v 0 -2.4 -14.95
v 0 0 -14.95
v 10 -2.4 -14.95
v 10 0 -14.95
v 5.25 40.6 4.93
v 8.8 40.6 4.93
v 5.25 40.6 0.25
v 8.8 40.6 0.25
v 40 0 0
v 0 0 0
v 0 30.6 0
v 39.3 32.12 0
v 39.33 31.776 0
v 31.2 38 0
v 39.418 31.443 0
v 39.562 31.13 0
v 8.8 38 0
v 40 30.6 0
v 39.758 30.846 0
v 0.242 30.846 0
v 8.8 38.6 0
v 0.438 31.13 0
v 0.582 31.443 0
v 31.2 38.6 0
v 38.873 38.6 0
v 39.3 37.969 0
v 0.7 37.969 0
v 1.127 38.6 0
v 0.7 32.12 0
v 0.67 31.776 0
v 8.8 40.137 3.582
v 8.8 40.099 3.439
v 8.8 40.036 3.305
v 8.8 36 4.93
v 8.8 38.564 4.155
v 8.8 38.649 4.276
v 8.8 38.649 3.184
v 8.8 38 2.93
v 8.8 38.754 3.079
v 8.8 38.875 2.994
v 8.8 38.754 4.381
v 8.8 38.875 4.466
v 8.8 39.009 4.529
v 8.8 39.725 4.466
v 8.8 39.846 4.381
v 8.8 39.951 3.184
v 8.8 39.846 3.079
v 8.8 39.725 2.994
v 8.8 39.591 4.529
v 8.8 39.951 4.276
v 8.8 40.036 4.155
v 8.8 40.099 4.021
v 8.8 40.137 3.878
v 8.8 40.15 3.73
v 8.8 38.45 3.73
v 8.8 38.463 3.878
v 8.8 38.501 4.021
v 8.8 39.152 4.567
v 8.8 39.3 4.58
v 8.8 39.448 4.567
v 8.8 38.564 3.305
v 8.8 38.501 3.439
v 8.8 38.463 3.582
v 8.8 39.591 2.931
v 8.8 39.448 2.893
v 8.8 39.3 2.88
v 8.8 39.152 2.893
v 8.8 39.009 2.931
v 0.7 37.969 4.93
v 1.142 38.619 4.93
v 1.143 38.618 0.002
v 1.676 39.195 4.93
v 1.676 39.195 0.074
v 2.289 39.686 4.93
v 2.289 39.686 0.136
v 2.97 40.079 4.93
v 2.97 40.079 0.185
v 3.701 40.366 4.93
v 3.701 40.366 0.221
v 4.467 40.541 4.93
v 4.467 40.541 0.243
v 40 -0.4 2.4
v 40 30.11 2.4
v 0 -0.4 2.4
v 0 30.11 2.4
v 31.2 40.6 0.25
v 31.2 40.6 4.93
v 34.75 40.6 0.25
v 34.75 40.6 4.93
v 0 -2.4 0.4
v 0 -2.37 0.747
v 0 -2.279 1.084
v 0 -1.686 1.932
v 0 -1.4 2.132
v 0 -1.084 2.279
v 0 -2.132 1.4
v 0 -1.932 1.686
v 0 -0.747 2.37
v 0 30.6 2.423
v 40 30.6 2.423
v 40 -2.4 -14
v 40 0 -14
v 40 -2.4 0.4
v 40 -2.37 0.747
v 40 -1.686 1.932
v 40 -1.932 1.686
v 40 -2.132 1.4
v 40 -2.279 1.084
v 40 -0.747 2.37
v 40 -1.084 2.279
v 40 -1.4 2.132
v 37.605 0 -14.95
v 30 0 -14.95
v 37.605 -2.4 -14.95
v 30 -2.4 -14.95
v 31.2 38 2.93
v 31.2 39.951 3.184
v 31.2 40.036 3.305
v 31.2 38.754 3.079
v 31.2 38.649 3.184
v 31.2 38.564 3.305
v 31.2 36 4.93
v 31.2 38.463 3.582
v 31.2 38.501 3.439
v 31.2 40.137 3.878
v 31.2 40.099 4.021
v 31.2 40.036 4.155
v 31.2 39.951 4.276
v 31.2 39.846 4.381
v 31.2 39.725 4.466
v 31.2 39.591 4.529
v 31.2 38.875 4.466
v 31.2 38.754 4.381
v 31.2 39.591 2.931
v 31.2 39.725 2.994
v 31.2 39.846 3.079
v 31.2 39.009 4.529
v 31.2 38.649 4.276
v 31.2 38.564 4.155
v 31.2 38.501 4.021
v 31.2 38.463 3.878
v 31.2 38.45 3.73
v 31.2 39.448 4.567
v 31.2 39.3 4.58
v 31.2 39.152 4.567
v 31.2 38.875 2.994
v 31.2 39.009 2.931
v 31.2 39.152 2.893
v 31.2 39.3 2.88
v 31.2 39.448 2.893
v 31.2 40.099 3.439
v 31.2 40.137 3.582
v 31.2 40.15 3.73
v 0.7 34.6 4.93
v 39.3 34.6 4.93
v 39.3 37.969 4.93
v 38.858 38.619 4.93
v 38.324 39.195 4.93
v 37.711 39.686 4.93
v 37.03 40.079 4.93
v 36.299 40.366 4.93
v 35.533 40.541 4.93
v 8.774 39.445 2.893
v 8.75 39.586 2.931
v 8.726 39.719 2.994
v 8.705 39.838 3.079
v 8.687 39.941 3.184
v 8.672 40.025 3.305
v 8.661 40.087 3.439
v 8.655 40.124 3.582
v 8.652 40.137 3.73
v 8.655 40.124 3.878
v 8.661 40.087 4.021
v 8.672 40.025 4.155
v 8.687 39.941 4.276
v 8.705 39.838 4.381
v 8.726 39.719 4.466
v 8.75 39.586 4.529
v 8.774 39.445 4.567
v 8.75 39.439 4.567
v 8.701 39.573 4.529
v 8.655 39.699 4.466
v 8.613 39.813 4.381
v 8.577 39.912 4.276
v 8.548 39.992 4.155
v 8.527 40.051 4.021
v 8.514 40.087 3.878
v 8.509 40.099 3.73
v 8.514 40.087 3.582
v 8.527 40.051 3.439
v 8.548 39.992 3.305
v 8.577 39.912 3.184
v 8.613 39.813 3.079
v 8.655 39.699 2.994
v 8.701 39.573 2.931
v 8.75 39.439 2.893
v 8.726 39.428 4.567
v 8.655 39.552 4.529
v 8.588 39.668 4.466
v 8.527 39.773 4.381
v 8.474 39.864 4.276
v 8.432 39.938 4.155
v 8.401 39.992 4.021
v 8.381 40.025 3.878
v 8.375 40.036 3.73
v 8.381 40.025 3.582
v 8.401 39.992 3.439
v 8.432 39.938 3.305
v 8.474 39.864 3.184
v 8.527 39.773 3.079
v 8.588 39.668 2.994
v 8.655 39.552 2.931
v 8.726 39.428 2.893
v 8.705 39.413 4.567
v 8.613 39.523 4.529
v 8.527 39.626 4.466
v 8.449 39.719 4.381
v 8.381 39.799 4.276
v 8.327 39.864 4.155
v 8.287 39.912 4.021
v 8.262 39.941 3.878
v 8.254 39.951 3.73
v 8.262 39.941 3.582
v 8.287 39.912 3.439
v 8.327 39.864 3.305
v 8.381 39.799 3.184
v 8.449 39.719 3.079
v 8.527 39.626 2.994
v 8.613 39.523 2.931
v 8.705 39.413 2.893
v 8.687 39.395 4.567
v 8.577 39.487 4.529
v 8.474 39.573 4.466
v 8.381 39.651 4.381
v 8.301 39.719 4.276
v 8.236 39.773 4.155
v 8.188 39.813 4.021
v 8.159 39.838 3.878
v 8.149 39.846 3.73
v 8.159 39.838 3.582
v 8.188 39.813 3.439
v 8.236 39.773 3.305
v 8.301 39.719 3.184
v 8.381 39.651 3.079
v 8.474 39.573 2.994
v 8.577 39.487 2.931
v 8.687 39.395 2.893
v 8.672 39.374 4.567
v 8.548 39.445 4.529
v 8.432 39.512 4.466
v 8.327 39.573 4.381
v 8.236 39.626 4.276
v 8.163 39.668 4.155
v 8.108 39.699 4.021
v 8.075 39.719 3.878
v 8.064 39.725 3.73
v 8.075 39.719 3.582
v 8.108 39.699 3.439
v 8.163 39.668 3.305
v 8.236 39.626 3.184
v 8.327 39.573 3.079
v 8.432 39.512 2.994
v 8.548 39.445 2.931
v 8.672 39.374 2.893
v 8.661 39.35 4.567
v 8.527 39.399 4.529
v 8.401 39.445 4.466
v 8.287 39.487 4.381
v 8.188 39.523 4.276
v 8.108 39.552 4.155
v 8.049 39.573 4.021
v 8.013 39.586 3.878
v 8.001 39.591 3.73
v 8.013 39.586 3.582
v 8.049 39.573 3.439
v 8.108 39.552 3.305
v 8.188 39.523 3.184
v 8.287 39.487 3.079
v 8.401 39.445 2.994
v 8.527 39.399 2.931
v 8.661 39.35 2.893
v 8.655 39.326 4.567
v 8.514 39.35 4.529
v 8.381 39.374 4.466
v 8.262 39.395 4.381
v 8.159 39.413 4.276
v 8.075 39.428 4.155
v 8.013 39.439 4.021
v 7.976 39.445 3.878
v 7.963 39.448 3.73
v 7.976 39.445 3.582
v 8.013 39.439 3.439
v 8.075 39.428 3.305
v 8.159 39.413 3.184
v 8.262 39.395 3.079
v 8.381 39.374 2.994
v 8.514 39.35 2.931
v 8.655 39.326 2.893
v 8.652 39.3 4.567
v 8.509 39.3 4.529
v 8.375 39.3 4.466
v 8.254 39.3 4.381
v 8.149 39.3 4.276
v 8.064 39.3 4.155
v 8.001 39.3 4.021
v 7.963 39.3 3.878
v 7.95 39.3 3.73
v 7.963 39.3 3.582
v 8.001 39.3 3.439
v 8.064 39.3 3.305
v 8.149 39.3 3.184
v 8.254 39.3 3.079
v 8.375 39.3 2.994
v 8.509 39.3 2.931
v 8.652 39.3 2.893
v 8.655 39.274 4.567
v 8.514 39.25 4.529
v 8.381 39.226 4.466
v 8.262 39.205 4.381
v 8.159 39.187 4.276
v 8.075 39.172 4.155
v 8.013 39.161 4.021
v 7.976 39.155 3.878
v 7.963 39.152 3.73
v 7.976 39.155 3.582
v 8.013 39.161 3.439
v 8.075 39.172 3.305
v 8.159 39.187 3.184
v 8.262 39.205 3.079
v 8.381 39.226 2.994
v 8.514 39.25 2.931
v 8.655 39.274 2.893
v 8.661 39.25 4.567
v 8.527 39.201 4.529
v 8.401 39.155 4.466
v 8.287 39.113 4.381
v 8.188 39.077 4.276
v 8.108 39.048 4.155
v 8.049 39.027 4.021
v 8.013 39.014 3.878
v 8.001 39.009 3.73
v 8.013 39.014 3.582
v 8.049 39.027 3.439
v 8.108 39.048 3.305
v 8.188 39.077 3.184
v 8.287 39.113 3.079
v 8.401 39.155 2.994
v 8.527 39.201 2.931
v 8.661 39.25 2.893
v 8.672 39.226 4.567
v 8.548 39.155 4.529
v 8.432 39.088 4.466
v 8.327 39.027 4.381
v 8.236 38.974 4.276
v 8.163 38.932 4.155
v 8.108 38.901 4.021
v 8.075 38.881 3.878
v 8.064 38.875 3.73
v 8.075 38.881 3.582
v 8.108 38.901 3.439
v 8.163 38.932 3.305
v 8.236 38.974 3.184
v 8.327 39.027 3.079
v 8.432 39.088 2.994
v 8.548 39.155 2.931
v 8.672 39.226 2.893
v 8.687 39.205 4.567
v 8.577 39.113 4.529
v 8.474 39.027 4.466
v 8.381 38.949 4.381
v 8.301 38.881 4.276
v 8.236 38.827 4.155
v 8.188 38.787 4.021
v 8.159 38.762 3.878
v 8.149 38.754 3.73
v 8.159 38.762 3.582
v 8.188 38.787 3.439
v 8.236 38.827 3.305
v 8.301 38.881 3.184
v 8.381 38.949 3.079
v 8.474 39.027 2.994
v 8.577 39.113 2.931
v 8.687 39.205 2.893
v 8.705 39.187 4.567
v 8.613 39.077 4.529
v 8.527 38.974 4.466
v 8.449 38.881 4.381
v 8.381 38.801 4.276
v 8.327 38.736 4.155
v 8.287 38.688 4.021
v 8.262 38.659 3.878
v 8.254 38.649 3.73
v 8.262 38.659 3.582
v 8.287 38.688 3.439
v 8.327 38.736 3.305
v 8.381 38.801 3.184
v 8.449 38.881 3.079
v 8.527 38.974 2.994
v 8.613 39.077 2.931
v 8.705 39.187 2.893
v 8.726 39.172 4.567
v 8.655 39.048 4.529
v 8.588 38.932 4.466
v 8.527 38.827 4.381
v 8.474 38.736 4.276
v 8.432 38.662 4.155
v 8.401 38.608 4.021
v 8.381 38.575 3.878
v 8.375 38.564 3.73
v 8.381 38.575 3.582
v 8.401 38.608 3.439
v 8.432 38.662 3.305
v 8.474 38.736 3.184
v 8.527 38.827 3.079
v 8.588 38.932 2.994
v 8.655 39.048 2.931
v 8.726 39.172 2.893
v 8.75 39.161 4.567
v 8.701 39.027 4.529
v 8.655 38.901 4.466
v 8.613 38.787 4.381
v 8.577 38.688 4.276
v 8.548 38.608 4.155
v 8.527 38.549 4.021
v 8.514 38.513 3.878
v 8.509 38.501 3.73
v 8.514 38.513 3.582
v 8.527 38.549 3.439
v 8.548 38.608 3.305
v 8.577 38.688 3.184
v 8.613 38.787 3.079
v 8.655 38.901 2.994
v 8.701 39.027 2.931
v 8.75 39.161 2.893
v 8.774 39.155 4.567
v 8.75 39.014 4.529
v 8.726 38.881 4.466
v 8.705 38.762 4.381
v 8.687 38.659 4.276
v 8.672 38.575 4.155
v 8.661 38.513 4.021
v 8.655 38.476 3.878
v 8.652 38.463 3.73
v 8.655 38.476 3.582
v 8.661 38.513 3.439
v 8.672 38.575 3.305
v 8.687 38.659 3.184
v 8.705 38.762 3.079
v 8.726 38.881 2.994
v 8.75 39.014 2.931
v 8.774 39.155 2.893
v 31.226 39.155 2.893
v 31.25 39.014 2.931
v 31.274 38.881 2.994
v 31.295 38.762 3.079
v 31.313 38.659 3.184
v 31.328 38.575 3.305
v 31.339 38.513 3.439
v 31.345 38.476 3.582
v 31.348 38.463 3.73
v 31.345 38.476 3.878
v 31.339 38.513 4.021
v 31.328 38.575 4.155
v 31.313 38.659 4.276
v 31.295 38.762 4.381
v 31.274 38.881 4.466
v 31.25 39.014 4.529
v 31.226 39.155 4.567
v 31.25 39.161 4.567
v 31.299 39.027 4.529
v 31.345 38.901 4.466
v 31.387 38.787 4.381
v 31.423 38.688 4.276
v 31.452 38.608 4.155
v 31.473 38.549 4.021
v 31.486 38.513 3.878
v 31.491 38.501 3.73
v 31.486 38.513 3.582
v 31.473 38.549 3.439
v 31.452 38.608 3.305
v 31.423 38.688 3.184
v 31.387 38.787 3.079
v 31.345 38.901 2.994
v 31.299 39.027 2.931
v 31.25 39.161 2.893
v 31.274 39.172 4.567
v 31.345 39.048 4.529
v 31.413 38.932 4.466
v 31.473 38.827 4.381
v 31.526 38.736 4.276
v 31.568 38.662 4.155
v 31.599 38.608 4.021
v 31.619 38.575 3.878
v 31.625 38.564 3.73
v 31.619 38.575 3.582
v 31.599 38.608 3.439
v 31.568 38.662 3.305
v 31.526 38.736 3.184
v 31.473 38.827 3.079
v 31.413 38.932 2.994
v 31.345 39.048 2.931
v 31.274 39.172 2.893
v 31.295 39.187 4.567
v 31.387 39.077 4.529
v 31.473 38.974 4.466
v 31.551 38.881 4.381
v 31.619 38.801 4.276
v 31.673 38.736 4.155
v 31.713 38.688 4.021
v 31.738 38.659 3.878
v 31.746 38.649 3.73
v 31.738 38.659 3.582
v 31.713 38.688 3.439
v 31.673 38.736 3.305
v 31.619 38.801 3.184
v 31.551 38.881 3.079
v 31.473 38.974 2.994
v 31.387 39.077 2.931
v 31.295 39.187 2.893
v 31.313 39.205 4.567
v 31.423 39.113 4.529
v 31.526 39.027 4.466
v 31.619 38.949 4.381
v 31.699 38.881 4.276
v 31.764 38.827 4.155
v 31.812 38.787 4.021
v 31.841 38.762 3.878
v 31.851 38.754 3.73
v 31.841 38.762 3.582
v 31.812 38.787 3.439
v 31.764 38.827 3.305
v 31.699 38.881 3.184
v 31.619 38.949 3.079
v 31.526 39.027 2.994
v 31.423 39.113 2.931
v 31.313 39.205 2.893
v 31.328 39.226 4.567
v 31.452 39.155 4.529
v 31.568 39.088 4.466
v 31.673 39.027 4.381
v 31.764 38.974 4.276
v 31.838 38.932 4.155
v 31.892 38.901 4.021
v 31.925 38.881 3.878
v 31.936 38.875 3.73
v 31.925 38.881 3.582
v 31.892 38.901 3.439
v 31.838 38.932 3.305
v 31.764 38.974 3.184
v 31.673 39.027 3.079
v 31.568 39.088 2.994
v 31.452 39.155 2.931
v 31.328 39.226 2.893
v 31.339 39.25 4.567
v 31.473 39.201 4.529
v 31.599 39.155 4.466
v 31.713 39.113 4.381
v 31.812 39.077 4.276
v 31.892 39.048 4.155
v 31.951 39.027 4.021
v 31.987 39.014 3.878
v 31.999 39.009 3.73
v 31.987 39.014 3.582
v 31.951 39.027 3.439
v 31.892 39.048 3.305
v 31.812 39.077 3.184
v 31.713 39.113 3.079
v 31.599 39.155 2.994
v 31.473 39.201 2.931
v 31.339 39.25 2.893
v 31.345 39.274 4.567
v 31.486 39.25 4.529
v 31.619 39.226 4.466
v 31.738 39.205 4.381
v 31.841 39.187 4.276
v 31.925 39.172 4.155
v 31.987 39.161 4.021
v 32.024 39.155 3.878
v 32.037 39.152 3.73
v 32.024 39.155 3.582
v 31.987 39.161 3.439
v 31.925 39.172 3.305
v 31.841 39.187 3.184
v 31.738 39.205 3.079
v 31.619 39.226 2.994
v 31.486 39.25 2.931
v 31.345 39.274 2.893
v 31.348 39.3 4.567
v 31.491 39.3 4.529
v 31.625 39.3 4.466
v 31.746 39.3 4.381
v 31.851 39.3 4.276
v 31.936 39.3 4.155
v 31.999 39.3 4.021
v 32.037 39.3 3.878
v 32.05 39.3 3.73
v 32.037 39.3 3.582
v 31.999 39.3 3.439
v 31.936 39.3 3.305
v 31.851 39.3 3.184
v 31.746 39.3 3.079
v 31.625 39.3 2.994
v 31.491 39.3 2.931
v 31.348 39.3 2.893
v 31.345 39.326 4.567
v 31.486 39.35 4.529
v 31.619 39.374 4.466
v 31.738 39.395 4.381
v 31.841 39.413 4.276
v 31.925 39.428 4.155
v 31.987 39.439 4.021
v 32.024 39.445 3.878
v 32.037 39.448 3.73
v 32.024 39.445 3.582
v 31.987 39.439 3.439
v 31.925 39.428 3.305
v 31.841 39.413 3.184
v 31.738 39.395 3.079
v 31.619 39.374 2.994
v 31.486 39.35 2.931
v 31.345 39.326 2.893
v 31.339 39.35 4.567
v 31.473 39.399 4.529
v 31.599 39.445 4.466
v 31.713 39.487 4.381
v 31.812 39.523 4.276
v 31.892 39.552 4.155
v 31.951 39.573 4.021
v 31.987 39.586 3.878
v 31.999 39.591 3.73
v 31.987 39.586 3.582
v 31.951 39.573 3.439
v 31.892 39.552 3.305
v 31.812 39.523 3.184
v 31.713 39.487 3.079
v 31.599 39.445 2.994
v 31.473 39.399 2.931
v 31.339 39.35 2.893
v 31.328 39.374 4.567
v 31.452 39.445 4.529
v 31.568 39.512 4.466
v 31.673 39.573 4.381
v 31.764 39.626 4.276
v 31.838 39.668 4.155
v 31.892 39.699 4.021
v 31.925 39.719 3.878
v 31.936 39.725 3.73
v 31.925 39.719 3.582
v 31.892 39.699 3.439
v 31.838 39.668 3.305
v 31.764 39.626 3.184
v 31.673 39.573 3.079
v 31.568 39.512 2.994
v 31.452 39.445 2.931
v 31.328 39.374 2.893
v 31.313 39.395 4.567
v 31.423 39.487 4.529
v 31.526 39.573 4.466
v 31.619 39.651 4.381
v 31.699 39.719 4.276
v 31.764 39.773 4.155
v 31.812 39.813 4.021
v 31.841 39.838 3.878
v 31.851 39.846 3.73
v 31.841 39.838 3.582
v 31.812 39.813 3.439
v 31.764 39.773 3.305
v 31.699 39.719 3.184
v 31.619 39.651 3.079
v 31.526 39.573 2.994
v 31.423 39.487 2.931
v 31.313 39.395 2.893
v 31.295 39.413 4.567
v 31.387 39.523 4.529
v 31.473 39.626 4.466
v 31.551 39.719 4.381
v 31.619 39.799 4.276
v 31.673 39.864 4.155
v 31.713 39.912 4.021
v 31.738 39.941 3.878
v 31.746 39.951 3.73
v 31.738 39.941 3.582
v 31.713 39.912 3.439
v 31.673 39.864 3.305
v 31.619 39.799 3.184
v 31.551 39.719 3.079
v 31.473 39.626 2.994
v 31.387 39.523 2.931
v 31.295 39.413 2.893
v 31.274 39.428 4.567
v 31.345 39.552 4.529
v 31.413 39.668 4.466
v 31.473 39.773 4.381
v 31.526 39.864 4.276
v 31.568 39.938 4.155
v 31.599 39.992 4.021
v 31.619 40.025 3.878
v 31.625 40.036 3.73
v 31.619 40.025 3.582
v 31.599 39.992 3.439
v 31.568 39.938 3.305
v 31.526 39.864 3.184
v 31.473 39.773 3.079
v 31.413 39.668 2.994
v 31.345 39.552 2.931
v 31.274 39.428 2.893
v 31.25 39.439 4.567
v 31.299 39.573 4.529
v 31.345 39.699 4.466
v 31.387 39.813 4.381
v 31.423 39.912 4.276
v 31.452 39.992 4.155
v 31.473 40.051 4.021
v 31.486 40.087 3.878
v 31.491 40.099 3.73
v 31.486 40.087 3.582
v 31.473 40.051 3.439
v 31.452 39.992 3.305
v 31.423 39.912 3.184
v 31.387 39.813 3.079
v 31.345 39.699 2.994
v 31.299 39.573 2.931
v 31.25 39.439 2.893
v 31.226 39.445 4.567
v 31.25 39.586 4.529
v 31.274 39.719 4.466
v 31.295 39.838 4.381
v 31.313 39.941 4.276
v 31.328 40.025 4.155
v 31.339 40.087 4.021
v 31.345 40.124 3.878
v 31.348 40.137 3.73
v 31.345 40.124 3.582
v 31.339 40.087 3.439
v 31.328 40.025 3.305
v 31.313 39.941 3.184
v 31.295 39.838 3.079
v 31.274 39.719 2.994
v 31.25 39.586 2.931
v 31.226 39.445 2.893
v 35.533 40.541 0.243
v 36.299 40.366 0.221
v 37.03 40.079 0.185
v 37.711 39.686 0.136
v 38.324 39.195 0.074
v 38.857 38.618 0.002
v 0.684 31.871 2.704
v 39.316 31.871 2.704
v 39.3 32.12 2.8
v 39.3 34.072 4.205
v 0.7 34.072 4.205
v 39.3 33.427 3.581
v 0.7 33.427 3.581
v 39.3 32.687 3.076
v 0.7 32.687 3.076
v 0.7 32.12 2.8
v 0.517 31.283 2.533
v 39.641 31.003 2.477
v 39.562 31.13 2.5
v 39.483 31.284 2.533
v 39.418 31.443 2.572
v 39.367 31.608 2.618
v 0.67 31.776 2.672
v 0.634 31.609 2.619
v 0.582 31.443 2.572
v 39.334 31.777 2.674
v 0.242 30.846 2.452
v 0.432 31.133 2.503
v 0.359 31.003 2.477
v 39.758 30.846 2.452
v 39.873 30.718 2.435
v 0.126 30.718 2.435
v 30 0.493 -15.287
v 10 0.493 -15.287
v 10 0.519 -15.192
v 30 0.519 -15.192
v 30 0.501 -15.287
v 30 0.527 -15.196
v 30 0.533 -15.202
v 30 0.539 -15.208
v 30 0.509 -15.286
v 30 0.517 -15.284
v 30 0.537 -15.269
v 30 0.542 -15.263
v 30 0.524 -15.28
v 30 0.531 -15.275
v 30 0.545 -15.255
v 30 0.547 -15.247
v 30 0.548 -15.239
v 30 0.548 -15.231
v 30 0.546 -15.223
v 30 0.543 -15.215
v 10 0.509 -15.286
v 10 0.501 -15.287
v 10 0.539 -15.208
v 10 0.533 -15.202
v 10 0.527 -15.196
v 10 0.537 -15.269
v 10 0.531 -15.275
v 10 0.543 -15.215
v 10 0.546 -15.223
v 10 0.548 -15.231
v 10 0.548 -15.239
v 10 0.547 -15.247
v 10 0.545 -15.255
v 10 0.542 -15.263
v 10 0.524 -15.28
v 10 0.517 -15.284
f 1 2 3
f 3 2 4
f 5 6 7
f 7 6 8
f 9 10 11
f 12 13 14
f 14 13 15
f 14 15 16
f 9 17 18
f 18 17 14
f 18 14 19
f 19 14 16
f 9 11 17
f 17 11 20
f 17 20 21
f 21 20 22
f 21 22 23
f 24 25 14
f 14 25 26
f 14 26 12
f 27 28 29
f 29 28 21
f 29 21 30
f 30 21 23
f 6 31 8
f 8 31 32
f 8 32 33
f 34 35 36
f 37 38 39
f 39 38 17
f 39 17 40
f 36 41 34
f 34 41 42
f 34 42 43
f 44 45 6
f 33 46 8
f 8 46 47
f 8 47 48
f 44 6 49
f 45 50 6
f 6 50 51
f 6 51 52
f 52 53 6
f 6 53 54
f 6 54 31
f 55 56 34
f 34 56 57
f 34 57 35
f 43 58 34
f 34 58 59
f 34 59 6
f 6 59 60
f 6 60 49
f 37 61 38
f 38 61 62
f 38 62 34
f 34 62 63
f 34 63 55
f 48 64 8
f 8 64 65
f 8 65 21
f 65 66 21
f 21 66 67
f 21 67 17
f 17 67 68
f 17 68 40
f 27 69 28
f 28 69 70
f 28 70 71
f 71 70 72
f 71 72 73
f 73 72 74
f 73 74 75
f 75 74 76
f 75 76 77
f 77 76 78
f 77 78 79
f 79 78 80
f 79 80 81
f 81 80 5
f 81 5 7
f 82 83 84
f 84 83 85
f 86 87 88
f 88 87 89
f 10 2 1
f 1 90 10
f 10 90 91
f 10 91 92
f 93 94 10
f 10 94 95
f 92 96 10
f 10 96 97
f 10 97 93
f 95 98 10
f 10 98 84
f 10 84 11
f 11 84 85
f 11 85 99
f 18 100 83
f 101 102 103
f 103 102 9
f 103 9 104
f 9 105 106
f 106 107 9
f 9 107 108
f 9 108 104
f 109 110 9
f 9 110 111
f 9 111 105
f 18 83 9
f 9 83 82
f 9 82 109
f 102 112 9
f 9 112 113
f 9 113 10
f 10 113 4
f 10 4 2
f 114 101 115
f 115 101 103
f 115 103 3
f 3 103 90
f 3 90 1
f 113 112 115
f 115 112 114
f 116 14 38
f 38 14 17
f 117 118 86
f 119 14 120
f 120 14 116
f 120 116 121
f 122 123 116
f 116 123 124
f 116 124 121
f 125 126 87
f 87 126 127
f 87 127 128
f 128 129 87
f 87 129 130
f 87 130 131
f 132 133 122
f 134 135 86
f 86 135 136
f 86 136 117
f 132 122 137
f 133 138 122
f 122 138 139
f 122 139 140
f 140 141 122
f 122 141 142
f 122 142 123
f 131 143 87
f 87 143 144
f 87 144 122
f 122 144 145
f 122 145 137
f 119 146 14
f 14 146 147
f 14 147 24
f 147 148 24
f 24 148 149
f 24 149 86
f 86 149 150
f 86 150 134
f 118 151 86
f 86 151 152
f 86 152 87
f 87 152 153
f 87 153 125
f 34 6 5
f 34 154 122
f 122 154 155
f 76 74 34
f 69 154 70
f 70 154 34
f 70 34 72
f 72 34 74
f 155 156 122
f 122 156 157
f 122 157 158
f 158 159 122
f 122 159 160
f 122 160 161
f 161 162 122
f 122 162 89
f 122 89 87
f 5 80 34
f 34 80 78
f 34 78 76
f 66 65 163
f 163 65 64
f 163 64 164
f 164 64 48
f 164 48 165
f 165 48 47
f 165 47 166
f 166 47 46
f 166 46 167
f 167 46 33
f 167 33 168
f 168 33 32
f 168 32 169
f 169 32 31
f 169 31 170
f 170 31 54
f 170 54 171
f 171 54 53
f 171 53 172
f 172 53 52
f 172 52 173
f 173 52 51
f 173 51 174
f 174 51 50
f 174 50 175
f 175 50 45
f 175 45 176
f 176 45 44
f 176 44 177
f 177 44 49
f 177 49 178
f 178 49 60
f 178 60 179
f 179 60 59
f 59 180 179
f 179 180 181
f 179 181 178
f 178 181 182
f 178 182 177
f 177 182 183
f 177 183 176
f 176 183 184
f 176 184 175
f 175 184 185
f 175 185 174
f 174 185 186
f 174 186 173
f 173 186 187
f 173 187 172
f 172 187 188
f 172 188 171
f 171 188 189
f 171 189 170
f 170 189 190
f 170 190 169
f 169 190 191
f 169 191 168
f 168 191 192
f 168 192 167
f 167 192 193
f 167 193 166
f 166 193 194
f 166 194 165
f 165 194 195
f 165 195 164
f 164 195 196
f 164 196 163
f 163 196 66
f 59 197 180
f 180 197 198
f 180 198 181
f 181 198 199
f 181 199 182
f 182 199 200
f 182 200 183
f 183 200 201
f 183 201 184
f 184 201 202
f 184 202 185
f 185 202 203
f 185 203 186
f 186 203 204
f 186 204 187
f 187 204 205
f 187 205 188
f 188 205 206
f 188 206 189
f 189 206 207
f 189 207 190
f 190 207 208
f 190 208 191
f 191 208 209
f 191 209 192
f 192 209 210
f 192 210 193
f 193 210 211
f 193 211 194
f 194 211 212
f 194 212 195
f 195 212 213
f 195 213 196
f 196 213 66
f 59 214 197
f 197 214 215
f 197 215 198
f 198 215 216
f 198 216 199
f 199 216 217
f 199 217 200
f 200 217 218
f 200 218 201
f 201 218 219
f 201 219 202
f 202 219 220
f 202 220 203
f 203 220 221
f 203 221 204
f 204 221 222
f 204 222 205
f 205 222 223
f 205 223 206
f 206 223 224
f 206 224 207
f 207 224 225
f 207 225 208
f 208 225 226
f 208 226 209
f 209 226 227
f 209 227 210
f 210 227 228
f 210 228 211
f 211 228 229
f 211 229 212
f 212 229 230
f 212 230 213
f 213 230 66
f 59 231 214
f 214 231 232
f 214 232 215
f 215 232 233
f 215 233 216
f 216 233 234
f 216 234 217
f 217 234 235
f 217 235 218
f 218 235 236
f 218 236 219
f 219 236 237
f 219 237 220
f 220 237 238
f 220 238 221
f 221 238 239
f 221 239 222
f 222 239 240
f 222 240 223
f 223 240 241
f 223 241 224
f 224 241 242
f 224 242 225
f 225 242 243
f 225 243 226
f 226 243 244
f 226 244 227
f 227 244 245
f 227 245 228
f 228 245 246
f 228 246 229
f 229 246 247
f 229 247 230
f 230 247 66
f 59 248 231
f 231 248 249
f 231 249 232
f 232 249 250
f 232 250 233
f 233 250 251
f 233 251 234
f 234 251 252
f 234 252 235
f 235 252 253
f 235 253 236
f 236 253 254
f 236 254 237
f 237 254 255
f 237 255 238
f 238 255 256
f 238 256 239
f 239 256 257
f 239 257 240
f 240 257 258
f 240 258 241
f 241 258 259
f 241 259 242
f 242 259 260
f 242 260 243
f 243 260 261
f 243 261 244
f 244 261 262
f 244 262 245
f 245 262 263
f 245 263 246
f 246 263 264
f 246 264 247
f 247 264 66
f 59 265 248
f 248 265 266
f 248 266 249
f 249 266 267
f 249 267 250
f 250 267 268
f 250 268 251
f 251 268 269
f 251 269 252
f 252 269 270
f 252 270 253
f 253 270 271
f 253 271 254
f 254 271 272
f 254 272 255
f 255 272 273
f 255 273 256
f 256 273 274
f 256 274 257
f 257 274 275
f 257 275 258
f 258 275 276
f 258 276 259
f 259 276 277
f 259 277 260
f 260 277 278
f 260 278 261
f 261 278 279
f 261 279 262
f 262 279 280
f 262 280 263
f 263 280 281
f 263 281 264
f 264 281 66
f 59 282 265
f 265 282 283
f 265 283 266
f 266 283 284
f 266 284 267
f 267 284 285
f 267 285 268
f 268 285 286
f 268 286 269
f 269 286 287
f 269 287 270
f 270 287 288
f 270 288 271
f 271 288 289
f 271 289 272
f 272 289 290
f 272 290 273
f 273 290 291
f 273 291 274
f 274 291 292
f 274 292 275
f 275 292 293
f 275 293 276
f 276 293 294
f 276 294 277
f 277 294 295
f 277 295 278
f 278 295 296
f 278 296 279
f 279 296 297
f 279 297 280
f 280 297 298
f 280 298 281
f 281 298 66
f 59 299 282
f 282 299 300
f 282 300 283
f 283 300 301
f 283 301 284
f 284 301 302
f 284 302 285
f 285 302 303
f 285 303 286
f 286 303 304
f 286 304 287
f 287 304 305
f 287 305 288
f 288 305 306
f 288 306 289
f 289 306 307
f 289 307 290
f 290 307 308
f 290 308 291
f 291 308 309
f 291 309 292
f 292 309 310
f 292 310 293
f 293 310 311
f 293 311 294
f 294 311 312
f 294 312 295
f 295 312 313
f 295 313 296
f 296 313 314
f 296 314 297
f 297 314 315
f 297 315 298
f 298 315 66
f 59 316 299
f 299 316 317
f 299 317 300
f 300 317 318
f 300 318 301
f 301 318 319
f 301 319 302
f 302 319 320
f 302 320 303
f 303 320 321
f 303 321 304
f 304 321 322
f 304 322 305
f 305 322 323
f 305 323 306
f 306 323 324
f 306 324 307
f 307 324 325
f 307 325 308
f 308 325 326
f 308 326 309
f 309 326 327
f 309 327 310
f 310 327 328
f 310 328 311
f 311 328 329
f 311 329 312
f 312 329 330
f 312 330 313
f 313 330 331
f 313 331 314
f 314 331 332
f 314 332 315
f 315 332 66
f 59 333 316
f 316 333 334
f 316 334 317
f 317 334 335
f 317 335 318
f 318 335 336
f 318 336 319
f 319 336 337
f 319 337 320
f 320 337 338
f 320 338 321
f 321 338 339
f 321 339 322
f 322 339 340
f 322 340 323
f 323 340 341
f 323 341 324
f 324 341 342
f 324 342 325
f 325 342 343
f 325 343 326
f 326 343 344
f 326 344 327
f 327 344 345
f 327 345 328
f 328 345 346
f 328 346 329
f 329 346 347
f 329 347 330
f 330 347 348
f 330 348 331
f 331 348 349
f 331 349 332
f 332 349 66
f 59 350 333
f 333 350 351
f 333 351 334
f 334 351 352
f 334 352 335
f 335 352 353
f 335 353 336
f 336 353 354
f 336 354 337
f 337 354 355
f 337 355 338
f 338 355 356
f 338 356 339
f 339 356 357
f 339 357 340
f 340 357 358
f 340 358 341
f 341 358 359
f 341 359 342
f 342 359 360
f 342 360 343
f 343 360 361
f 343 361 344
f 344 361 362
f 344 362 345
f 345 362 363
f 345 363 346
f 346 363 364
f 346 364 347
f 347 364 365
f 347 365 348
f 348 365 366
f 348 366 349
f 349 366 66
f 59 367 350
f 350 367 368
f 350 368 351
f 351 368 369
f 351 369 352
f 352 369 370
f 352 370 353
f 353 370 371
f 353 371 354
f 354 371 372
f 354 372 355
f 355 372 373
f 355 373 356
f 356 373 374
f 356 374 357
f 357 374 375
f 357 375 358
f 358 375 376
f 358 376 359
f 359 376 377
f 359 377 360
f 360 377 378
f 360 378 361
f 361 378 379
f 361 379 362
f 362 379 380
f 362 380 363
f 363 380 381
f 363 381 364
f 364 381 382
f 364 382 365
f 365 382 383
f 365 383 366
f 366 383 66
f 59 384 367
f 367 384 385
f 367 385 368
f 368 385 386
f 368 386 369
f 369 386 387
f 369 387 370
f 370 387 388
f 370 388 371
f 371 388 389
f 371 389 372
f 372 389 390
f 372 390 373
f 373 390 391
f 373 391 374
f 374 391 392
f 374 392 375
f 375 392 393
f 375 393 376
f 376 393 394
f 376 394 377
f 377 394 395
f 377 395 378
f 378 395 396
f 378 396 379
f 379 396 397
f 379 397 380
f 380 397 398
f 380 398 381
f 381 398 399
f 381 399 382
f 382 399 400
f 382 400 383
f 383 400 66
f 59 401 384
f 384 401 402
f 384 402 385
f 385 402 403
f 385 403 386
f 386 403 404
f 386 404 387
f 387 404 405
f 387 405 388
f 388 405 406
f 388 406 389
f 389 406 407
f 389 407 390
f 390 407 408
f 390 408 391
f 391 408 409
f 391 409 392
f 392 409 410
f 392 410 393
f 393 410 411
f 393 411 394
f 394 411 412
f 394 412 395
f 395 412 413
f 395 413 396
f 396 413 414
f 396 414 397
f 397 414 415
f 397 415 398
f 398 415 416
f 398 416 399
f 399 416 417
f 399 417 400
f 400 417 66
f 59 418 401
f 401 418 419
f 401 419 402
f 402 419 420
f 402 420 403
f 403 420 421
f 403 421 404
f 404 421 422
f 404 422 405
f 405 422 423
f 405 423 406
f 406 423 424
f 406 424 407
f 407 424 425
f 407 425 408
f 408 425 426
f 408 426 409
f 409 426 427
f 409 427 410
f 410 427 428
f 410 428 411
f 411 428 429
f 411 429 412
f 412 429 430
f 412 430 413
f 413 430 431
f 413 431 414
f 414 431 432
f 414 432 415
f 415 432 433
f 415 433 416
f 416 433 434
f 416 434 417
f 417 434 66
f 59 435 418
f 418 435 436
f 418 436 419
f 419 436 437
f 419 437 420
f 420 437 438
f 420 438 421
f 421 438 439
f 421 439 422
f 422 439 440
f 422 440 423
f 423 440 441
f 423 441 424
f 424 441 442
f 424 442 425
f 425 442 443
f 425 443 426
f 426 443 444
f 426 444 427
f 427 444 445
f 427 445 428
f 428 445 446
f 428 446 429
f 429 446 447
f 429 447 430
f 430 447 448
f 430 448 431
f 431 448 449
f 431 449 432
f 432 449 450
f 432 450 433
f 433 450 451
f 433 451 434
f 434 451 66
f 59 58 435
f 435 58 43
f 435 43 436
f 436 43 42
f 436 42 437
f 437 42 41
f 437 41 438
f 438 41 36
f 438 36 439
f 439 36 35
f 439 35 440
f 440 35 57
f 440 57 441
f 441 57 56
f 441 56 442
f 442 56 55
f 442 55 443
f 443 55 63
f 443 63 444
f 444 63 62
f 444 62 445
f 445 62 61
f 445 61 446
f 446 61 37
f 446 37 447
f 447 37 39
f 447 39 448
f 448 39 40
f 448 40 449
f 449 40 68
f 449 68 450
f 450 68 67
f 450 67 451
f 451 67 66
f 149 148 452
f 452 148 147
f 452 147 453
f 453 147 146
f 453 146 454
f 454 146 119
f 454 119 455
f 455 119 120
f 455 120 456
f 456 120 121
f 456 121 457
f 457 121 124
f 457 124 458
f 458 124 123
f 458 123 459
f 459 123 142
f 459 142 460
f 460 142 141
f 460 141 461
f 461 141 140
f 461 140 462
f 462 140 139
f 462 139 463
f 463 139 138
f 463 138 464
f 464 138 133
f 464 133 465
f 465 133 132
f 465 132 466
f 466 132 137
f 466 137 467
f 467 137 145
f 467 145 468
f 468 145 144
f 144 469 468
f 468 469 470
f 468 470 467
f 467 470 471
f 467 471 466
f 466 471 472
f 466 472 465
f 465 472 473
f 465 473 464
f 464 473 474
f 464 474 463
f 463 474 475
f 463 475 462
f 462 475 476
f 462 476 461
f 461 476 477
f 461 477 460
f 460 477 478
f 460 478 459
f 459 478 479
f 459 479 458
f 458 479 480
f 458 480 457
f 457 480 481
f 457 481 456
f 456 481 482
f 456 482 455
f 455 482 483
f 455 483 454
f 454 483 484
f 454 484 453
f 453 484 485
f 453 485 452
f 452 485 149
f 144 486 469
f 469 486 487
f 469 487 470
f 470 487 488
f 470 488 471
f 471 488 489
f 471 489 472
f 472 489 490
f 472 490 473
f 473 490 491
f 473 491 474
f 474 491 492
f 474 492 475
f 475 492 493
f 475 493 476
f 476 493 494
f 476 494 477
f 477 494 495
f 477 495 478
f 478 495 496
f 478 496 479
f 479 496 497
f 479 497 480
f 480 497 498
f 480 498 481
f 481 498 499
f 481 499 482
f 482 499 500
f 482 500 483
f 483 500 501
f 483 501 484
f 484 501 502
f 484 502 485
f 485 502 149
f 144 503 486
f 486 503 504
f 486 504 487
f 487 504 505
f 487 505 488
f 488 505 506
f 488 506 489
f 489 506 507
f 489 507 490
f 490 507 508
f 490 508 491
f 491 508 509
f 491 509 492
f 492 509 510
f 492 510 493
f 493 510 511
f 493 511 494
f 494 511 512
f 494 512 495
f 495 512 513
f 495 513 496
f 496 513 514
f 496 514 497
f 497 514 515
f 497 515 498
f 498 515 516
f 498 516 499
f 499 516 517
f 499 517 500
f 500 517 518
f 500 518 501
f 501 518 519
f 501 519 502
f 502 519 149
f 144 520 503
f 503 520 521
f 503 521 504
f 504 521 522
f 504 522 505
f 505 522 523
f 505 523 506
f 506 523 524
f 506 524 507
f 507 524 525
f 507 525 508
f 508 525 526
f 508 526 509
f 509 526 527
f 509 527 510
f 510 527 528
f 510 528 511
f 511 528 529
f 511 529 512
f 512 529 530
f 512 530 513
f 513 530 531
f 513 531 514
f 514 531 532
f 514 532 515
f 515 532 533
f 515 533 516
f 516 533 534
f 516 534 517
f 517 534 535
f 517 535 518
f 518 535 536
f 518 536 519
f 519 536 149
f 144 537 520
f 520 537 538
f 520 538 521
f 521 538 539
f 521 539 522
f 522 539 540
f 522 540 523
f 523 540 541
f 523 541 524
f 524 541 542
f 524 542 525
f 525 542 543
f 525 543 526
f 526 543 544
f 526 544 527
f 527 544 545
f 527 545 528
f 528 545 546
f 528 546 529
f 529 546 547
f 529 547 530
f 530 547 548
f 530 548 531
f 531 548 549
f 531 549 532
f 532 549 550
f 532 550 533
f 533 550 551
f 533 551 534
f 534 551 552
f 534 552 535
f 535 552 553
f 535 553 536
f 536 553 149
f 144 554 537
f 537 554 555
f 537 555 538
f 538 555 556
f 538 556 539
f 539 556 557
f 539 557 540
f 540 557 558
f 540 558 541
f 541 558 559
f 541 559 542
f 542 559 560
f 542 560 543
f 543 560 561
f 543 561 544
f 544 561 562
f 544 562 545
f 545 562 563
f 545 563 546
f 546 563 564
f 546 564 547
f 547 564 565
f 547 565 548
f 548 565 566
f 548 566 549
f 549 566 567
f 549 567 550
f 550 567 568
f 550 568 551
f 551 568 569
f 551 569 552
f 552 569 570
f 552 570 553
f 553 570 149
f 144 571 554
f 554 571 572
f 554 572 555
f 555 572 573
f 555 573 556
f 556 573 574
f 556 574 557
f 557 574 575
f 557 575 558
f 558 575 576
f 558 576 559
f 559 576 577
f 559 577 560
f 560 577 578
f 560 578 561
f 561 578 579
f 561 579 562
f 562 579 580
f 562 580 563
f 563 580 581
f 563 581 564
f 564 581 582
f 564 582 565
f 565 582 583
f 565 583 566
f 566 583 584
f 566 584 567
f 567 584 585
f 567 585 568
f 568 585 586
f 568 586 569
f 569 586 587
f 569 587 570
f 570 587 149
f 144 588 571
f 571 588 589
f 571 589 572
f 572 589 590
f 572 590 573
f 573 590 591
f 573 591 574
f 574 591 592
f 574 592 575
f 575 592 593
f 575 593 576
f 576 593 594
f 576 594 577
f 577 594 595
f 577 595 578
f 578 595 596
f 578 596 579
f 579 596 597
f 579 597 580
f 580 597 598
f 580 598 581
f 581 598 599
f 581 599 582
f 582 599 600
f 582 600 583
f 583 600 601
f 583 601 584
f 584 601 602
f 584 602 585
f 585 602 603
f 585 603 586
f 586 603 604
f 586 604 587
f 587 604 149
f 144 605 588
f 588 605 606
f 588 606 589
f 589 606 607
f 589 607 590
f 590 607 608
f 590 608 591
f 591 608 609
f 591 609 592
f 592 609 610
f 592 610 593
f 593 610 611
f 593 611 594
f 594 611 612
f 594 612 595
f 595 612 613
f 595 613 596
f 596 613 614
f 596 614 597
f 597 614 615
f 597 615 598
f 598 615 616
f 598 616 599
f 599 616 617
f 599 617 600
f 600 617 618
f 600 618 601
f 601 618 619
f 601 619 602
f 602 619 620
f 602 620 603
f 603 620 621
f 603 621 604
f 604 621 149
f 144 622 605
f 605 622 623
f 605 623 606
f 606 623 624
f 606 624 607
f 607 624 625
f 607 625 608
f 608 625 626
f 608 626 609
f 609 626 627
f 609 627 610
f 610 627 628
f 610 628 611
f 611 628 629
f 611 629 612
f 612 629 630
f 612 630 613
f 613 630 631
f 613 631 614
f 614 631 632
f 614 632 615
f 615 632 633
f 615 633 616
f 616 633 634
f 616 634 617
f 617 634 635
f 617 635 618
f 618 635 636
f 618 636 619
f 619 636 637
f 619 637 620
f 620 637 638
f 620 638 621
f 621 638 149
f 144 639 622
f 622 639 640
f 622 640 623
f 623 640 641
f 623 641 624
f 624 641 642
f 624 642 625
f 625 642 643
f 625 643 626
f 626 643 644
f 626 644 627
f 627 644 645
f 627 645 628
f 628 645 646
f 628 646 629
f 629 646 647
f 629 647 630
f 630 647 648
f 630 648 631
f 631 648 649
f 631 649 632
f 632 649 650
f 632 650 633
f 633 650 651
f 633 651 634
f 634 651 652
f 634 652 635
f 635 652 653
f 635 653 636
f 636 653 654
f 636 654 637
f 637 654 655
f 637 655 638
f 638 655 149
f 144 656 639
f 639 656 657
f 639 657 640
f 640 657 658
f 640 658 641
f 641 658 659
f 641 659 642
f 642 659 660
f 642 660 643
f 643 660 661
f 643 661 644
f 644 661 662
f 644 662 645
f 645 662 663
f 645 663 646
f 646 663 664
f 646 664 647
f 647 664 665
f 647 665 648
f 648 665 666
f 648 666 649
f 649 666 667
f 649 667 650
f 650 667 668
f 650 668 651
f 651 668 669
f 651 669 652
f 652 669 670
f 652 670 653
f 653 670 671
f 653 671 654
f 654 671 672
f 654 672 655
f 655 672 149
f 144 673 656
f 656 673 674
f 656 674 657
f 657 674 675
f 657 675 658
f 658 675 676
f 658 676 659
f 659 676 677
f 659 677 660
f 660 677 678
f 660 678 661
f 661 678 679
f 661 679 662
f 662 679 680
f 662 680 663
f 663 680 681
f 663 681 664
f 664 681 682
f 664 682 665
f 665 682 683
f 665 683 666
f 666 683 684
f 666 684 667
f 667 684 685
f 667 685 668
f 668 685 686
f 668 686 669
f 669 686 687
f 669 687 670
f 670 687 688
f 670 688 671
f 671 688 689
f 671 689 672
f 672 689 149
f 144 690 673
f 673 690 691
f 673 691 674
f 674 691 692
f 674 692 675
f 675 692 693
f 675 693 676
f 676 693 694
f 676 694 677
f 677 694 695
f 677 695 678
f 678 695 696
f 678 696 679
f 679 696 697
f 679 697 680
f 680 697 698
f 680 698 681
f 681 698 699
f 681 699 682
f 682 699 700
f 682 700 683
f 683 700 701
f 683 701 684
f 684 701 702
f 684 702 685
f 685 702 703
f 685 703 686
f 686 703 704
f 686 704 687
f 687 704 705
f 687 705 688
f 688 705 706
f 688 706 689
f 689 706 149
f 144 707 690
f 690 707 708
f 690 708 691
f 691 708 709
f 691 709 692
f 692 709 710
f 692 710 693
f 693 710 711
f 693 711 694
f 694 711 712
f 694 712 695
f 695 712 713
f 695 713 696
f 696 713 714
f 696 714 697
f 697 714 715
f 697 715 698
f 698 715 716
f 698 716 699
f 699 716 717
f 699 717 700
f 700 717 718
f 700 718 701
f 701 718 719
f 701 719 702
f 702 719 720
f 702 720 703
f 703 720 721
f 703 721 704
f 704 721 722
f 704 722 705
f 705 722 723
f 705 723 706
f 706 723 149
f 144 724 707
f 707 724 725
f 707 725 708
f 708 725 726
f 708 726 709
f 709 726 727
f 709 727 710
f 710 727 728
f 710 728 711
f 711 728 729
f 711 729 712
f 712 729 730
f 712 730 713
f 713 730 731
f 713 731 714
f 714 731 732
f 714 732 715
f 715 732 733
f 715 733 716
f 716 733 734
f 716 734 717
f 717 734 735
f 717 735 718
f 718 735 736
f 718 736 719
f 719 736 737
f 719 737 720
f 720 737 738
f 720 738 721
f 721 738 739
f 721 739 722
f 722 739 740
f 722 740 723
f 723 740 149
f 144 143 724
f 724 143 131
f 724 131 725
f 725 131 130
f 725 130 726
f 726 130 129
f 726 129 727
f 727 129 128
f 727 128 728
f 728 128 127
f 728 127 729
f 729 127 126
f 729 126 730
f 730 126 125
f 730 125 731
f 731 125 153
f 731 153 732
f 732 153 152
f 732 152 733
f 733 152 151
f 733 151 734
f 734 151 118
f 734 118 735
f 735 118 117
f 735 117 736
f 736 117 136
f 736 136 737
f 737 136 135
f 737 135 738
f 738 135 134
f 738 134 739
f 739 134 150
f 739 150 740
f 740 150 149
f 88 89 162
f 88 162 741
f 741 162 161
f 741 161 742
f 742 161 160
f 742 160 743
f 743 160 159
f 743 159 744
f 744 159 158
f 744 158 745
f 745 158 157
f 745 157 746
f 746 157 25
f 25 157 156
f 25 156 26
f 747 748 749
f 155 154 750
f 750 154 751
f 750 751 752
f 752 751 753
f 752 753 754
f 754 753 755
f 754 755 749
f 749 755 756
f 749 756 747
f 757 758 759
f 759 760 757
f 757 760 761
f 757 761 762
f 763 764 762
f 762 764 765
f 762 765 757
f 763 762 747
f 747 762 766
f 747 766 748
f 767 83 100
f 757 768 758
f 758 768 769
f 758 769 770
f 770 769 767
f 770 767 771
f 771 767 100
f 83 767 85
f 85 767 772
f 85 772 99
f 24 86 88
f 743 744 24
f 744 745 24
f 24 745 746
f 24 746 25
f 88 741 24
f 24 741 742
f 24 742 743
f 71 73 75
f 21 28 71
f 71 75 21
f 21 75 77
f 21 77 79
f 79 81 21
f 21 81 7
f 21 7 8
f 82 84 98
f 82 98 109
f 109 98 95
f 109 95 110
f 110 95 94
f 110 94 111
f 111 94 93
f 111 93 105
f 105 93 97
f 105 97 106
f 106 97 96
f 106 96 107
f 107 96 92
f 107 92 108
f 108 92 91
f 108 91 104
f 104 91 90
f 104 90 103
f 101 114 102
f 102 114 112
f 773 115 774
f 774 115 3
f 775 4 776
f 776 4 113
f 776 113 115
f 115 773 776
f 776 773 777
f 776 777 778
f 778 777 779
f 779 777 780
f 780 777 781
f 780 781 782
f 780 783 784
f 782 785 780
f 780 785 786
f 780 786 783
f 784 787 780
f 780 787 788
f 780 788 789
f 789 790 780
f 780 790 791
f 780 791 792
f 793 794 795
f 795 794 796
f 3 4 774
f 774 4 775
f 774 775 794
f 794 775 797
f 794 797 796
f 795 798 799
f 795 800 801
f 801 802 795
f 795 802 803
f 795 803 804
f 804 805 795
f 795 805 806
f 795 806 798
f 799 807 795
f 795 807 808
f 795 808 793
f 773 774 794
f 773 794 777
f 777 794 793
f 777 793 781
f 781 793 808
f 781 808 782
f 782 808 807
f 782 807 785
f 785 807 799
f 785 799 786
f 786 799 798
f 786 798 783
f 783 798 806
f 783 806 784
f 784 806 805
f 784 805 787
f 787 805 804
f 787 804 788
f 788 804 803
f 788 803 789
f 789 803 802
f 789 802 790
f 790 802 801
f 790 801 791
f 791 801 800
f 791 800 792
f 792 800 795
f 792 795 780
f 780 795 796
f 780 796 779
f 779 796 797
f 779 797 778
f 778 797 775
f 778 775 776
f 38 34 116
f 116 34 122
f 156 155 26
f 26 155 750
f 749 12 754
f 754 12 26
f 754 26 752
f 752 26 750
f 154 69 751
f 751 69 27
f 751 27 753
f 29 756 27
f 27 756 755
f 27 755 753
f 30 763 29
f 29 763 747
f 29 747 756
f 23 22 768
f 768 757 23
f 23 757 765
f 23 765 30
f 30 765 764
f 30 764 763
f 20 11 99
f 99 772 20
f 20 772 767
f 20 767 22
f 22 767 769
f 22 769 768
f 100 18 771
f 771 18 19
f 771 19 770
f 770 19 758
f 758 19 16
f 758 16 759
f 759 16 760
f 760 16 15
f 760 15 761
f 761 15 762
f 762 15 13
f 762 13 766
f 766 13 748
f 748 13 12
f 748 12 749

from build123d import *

# Parameters (mm, degrees)
SKETCH1_W                = 40
SKETCH1_H                = 40.6
BOSS_EXTRUDE1_DEPTH      = 2.4
SKETCH2_W                = 40
SKETCH2_H                = 2.4
BOSS_EXTRUDE2_DEPTH      = 17.35
SKETCH3_W                = 22.4
SKETCH3_H                = 2.6
CUT_EXTRUDE1_DEPTH       = 2.4
BOSS_EXTRUDE3_DEPTH      = 2.53
FILLET1_R                = 5.25
FILLET2_R                = 5.25
CUT_EXTRUDE2_DEPTH       = 16.4
FILLET3_R                = 2
CUT_EXTRUDE3_DEPTH       = 59.922512676
BOSS_EXTRUDE4_DEPTH      = 10
BOSS_EXTRUDE4_DEPTH_BACK = 10
FILLET4_R                = 0.05
CHAMFER1_SIZE            = 2
SKETCH9_W                = 0.7
SKETCH9_H                = 10
CUT_EXTRUDE4_DEPTH       = 60.009057176
FILLET5_R                = 2


with BuildPart() as part:
    # Sketch1 → Boss-Extrude1 (new body)
    with BuildSketch(Plane.XY):
        with Locations((20, 20.3)):
            Rectangle(SKETCH1_W, SKETCH1_H)
    extrude(amount=BOSS_EXTRUDE1_DEPTH)

    # Sketch2 → Boss-Extrude2 (add)
    with BuildSketch(Plane.XY.offset(2.4)):
        with Locations((20, -1.2)):
            Rectangle(SKETCH2_W, SKETCH2_H)
    extrude(amount=-BOSS_EXTRUDE2_DEPTH)

    # Sketch3 → Cut-Extrude1 (cut)
    with BuildSketch(Plane.XY.offset(2.4)):
        with Locations((20, 39.3)):
            Rectangle(SKETCH3_W, SKETCH3_H)
    extrude(amount=-CUT_EXTRUDE1_DEPTH, mode=Mode.SUBTRACT)

    # Sketch5 → Boss-Extrude3 (add)
    with BuildSketch(Plane.XY.offset(2.4)):
        Polygon((0, 40.6), (0, 34.6), (40, 34.6), (40, 40.6), (31.2, 40.6), (31.2, 38), (8.8, 38), (8.8, 40.6), align=None)
    extrude(amount=BOSS_EXTRUDE3_DEPTH)

    # Sketch4 → Cut-Revolve2 (revolve, cut)
    with BuildSketch(Plane(origin=(8.8, 0, 0), x_dir=(0, 0, -1), z_dir=(1, 0, 0))):
        with BuildLine():
            Line((-2.88, 39.3), (-4.58, 39.3))
            ThreePointArc((-4.58, 39.3), (-3.73, 38.45), (-2.88, 39.3))
        make_face()
    cut_revolve2 = revolve(axis=Axis((8.8, 39.3, 2.88), (0, 0, 1)), mode=Mode.SUBTRACT)

    # Mirror2: Cut-Revolve2 across plane
    add(cut_revolve2.mirror(Plane.ZY.offset(-20)), mode=Mode.SUBTRACT)

    # Fillet1
    fillet1_edges = [part.edges().sort_by_distance(p)[0] for p in [
        (0, 40.6, 2.465),
        (40, 40.6, 2.465),
    ]]
    fillet(fillet1_edges, radius=FILLET1_R)

    # Fillet2
    # the kernel refuses this fillet: 5.25 mm, written as the material it adds along each edge
    with BuildSketch(Plane(origin=(0, 34.6, 2.4), x_dir=(0, 0, 1), z_dir=(1, 0, 0))) as fillet2_piece_1:
        with BuildLine():
            CenterArc((5.25, 4.490445412), FILLET2_R, 180, 58.795429652)
            Line((0, 4.490445412), (-0.105, 4.490445412))
            Line((-0.105, 4.490445412), (-0.105, 0))
            Line((-0.105, 0), (0, -0.105))
            ThreePointArc((0, -0.105), (1.265, -0.105), (2.4756, -0.089808908))
            Line((2.4756, -0.089808908), (2.53, 0))
        make_face()
    extrude(amount=40)

    # Sketch6 → Cut-Extrude2 (cut)
    with BuildSketch(Plane.ZY.offset(-31.2)):
        Polygon((0, 40.6), (0, 38.6), (0.25, 40.6), align=None)
    cut_extrude2 = extrude(amount=-CUT_EXTRUDE2_DEPTH, mode=Mode.SUBTRACT)

    # Mirror3: Cut-Extrude2 across plane
    add(cut_extrude2.mirror(Plane.ZY.offset(-20)), mode=Mode.SUBTRACT)

    # Fillet3
    fillet3_edges = [part.edges().sort_by_distance(p)[0] for p in [
        (20, -2.4, 2.4),
    ]]
    fillet(fillet3_edges, radius=FILLET3_R)

    # Sketch7 → Cut-Extrude3 (cut, through all)
    with BuildSketch(Plane(origin=(0, 0, 0), x_dir=(1, 0, 0), z_dir=(0, 1, 0))):
        Polygon((37.6, 14.952), (40, 14), (40, 14.95), align=None)
    extrude(amount=-CUT_EXTRUDE3_DEPTH, mode=Mode.SUBTRACT)

    # Sketch8 → Boss-Extrude4 (add, two sides: drawn at the far end of the back side and taken through both)
    with BuildSketch(Plane.ZY.offset(-20).offset(-BOSS_EXTRUDE4_DEPTH_BACK)):
        Polygon((-14.95, 0), (-15.323046127, 0.8), (-14.95, -2.4), align=None)
    extrude(amount=BOSS_EXTRUDE4_DEPTH + BOSS_EXTRUDE4_DEPTH_BACK)

    # Fillet4
    fillet4_edges = [part.edges().sort_by_distance(p)[0] for p in [
        (20, 0.8, -15.323046127),
    ]]
    fillet(fillet4_edges, radius=FILLET4_R)

    # Chamfer1
    chamfer1_edges = [part.edges().sort_by_distance(p)[0] for p in [
        (20, 38, 4.93),
    ]]
    chamfer(chamfer1_edges, length=CHAMFER1_SIZE)

    # Sketch9 → Cut-Extrude4 (cut, through all)
    with BuildSketch(Plane(origin=(0, 0, 0), x_dir=(-1, 0, 0), z_dir=(0, 0, -1))):
        with Locations((-39.65, 35.6)):
            Rectangle(SKETCH9_W, SKETCH9_H)
        with Locations((-0.35, 35.6)):
            Rectangle(SKETCH9_W, SKETCH9_H)
    extrude(amount=-CUT_EXTRUDE4_DEPTH, mode=Mode.SUBTRACT)

    # Fillet5
    # the kernel refuses this fillet: 2 mm, written as the material it adds along each edge
    with BuildSketch(Plane(origin=(0.7, 30.6, 0), x_dir=(0, 1, 0), z_dir=(0, 0, 1))) as fillet5_piece_1_section:
        with BuildLine():
            CenterArc((1.519868415, 2), FILLET5_R, 220.541601874, 49.458398126)
            Line((0, 0.7), (-0.030397368, 0.674))
            ThreePointArc((-0.030397368, 0.674), (-0.04, 0.35), (-0.04, 0))
            Line((-0.04, 0), (0, -0.04))
            Line((0, -0.04), (1.519868415, -0.04))
            Line((1.519868415, -0.04), (1.519868415, 0))
        make_face()
    fillet5_piece_1 = extrude(amount=6.222629495, mode=Mode.PRIVATE)
    fillet5_piece_1 = fillet5_piece_1 - Plane(origin=(0.526032061, 30.109554588, 7.65), x_dir=(0, 0, 1), z_dir=(-1, 0, 0)) * Cylinder(5.25, 19, mode=Mode.PRIVATE)
    add(fillet5_piece_1)
    with BuildSketch(Plane(origin=(39.3, 30.6, 0), x_dir=(0, 1, 0), z_dir=(0, 0, 1))) as fillet5_piece_2_section:
        with BuildLine():
            CenterArc((1.519868415, -2), FILLET5_R, 90, 49.458398126)
            Line((0, -0.7), (-0.030397368, -0.674))
            ThreePointArc((-0.030397368, -0.674), (-0.04, -0.35), (-0.04, 0))
            Line((-0.04, 0), (0, 0.04))
            Line((0, 0.04), (1.519868415, 0.04))
            Line((1.519868415, 0.04), (1.519868415, 0))
        make_face()
    fillet5_piece_2 = extrude(amount=6.222629495, mode=Mode.PRIVATE)
    fillet5_piece_2 = fillet5_piece_2 - Plane(origin=(39.473967939, 30.109554588, 7.65), x_dir=(0, 0, 1), z_dir=(-1, 0, 0)) * Cylinder(5.25, 19, mode=Mode.PRIVATE)
    add(fillet5_piece_2)


solid = part.part
